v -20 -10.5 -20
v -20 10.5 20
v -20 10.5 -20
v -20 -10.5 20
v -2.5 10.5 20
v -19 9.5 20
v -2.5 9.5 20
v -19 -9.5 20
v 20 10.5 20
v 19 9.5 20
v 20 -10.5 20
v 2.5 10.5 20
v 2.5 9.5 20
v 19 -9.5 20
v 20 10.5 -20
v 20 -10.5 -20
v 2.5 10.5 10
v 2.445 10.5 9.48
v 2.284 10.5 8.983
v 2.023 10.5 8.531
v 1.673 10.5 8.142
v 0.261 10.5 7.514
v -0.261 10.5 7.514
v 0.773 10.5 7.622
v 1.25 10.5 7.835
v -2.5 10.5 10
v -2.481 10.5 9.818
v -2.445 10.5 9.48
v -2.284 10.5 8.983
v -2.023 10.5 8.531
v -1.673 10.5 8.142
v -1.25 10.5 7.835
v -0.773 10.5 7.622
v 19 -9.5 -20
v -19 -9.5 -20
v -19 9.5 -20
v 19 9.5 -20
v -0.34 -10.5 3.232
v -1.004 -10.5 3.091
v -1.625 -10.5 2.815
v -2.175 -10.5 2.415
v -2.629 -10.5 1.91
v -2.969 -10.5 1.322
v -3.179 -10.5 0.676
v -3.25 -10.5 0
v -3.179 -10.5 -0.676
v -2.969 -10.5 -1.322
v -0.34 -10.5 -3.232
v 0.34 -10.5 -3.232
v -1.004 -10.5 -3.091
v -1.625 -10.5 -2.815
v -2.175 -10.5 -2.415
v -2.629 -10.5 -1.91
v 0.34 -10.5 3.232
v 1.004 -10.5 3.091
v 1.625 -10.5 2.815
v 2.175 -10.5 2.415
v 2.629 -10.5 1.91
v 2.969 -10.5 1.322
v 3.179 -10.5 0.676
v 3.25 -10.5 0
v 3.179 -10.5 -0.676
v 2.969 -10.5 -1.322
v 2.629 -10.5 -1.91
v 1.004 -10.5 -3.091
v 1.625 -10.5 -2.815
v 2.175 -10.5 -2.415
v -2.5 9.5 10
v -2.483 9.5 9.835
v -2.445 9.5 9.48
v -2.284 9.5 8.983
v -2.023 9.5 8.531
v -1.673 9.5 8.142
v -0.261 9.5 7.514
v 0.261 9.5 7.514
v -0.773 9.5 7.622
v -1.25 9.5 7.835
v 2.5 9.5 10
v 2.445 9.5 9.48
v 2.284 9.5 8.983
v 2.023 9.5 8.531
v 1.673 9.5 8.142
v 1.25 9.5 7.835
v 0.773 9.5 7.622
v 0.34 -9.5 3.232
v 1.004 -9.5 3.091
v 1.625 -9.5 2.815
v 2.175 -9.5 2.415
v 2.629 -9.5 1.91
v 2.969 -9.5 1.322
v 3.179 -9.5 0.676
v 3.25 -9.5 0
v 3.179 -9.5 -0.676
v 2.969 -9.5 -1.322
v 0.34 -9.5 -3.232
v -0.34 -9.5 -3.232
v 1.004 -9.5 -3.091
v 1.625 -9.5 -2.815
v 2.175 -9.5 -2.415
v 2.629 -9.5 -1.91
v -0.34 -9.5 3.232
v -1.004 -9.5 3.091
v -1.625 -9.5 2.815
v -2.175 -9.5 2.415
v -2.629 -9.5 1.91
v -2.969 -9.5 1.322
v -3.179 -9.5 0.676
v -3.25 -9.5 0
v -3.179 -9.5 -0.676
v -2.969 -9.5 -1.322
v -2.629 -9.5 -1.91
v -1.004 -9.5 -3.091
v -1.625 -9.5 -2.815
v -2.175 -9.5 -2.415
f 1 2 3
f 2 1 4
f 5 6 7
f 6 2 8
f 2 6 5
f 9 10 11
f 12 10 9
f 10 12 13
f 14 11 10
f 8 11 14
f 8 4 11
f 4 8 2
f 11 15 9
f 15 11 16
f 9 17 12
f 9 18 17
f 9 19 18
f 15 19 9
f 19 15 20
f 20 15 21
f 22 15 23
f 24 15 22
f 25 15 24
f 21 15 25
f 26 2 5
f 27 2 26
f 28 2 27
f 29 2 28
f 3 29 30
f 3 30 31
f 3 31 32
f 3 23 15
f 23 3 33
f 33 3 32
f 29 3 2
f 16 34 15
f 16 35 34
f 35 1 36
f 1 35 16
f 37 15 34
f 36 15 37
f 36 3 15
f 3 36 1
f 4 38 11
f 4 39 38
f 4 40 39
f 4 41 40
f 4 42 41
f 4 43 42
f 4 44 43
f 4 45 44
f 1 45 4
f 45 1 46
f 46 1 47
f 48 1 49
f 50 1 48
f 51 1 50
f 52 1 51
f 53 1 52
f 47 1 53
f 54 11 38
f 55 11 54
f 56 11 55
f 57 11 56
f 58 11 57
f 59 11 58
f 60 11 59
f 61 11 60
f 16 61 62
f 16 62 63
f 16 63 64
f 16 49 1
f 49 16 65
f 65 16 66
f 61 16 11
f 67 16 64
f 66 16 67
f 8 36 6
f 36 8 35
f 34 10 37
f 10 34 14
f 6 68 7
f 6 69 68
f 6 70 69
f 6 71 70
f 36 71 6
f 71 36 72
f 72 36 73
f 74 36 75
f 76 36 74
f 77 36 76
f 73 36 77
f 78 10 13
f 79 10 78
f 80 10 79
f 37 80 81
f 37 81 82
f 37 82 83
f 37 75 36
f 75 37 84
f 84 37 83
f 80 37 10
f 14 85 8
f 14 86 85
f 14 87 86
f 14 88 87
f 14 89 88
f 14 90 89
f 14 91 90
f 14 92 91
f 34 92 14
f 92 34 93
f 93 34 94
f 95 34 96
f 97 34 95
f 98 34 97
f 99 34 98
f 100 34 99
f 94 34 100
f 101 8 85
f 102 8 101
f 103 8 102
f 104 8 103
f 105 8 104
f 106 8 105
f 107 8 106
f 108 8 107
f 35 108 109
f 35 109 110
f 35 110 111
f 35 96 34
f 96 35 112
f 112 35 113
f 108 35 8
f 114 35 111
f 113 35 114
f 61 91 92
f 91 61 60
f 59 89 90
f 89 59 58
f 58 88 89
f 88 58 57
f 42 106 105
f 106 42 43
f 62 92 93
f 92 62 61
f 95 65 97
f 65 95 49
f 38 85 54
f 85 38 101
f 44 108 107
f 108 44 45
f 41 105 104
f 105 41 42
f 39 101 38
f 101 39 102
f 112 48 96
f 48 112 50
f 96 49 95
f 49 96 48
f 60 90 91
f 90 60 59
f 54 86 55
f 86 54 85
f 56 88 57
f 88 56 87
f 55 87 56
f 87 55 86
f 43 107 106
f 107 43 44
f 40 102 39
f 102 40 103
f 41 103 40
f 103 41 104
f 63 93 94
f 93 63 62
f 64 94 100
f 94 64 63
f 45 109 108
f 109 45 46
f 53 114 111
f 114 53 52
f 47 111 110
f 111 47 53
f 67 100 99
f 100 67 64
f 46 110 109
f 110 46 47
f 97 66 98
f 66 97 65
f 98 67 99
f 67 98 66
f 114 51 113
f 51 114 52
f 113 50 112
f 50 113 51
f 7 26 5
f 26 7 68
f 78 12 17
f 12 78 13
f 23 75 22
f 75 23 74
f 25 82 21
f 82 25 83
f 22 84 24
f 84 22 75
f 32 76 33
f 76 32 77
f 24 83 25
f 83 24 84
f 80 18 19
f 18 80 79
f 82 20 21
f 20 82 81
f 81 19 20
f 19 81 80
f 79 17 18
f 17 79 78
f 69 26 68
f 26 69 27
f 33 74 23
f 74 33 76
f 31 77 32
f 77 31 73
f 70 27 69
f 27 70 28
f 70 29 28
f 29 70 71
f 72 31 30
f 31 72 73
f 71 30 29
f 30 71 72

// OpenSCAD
difference(){
    cube([40,21,40],center=true);
    cube([38,19,42],center=true);
    rotate([90,0,0])
    cylinder(d=6.5,h=30,$fn=30);
    translate([0,10,20])
    cube([5,20,20],center=true);
    translate([0,0,10])
    rotate([-90,0,0])
    cylinder(d=5,h=30,$fn=30);
}
